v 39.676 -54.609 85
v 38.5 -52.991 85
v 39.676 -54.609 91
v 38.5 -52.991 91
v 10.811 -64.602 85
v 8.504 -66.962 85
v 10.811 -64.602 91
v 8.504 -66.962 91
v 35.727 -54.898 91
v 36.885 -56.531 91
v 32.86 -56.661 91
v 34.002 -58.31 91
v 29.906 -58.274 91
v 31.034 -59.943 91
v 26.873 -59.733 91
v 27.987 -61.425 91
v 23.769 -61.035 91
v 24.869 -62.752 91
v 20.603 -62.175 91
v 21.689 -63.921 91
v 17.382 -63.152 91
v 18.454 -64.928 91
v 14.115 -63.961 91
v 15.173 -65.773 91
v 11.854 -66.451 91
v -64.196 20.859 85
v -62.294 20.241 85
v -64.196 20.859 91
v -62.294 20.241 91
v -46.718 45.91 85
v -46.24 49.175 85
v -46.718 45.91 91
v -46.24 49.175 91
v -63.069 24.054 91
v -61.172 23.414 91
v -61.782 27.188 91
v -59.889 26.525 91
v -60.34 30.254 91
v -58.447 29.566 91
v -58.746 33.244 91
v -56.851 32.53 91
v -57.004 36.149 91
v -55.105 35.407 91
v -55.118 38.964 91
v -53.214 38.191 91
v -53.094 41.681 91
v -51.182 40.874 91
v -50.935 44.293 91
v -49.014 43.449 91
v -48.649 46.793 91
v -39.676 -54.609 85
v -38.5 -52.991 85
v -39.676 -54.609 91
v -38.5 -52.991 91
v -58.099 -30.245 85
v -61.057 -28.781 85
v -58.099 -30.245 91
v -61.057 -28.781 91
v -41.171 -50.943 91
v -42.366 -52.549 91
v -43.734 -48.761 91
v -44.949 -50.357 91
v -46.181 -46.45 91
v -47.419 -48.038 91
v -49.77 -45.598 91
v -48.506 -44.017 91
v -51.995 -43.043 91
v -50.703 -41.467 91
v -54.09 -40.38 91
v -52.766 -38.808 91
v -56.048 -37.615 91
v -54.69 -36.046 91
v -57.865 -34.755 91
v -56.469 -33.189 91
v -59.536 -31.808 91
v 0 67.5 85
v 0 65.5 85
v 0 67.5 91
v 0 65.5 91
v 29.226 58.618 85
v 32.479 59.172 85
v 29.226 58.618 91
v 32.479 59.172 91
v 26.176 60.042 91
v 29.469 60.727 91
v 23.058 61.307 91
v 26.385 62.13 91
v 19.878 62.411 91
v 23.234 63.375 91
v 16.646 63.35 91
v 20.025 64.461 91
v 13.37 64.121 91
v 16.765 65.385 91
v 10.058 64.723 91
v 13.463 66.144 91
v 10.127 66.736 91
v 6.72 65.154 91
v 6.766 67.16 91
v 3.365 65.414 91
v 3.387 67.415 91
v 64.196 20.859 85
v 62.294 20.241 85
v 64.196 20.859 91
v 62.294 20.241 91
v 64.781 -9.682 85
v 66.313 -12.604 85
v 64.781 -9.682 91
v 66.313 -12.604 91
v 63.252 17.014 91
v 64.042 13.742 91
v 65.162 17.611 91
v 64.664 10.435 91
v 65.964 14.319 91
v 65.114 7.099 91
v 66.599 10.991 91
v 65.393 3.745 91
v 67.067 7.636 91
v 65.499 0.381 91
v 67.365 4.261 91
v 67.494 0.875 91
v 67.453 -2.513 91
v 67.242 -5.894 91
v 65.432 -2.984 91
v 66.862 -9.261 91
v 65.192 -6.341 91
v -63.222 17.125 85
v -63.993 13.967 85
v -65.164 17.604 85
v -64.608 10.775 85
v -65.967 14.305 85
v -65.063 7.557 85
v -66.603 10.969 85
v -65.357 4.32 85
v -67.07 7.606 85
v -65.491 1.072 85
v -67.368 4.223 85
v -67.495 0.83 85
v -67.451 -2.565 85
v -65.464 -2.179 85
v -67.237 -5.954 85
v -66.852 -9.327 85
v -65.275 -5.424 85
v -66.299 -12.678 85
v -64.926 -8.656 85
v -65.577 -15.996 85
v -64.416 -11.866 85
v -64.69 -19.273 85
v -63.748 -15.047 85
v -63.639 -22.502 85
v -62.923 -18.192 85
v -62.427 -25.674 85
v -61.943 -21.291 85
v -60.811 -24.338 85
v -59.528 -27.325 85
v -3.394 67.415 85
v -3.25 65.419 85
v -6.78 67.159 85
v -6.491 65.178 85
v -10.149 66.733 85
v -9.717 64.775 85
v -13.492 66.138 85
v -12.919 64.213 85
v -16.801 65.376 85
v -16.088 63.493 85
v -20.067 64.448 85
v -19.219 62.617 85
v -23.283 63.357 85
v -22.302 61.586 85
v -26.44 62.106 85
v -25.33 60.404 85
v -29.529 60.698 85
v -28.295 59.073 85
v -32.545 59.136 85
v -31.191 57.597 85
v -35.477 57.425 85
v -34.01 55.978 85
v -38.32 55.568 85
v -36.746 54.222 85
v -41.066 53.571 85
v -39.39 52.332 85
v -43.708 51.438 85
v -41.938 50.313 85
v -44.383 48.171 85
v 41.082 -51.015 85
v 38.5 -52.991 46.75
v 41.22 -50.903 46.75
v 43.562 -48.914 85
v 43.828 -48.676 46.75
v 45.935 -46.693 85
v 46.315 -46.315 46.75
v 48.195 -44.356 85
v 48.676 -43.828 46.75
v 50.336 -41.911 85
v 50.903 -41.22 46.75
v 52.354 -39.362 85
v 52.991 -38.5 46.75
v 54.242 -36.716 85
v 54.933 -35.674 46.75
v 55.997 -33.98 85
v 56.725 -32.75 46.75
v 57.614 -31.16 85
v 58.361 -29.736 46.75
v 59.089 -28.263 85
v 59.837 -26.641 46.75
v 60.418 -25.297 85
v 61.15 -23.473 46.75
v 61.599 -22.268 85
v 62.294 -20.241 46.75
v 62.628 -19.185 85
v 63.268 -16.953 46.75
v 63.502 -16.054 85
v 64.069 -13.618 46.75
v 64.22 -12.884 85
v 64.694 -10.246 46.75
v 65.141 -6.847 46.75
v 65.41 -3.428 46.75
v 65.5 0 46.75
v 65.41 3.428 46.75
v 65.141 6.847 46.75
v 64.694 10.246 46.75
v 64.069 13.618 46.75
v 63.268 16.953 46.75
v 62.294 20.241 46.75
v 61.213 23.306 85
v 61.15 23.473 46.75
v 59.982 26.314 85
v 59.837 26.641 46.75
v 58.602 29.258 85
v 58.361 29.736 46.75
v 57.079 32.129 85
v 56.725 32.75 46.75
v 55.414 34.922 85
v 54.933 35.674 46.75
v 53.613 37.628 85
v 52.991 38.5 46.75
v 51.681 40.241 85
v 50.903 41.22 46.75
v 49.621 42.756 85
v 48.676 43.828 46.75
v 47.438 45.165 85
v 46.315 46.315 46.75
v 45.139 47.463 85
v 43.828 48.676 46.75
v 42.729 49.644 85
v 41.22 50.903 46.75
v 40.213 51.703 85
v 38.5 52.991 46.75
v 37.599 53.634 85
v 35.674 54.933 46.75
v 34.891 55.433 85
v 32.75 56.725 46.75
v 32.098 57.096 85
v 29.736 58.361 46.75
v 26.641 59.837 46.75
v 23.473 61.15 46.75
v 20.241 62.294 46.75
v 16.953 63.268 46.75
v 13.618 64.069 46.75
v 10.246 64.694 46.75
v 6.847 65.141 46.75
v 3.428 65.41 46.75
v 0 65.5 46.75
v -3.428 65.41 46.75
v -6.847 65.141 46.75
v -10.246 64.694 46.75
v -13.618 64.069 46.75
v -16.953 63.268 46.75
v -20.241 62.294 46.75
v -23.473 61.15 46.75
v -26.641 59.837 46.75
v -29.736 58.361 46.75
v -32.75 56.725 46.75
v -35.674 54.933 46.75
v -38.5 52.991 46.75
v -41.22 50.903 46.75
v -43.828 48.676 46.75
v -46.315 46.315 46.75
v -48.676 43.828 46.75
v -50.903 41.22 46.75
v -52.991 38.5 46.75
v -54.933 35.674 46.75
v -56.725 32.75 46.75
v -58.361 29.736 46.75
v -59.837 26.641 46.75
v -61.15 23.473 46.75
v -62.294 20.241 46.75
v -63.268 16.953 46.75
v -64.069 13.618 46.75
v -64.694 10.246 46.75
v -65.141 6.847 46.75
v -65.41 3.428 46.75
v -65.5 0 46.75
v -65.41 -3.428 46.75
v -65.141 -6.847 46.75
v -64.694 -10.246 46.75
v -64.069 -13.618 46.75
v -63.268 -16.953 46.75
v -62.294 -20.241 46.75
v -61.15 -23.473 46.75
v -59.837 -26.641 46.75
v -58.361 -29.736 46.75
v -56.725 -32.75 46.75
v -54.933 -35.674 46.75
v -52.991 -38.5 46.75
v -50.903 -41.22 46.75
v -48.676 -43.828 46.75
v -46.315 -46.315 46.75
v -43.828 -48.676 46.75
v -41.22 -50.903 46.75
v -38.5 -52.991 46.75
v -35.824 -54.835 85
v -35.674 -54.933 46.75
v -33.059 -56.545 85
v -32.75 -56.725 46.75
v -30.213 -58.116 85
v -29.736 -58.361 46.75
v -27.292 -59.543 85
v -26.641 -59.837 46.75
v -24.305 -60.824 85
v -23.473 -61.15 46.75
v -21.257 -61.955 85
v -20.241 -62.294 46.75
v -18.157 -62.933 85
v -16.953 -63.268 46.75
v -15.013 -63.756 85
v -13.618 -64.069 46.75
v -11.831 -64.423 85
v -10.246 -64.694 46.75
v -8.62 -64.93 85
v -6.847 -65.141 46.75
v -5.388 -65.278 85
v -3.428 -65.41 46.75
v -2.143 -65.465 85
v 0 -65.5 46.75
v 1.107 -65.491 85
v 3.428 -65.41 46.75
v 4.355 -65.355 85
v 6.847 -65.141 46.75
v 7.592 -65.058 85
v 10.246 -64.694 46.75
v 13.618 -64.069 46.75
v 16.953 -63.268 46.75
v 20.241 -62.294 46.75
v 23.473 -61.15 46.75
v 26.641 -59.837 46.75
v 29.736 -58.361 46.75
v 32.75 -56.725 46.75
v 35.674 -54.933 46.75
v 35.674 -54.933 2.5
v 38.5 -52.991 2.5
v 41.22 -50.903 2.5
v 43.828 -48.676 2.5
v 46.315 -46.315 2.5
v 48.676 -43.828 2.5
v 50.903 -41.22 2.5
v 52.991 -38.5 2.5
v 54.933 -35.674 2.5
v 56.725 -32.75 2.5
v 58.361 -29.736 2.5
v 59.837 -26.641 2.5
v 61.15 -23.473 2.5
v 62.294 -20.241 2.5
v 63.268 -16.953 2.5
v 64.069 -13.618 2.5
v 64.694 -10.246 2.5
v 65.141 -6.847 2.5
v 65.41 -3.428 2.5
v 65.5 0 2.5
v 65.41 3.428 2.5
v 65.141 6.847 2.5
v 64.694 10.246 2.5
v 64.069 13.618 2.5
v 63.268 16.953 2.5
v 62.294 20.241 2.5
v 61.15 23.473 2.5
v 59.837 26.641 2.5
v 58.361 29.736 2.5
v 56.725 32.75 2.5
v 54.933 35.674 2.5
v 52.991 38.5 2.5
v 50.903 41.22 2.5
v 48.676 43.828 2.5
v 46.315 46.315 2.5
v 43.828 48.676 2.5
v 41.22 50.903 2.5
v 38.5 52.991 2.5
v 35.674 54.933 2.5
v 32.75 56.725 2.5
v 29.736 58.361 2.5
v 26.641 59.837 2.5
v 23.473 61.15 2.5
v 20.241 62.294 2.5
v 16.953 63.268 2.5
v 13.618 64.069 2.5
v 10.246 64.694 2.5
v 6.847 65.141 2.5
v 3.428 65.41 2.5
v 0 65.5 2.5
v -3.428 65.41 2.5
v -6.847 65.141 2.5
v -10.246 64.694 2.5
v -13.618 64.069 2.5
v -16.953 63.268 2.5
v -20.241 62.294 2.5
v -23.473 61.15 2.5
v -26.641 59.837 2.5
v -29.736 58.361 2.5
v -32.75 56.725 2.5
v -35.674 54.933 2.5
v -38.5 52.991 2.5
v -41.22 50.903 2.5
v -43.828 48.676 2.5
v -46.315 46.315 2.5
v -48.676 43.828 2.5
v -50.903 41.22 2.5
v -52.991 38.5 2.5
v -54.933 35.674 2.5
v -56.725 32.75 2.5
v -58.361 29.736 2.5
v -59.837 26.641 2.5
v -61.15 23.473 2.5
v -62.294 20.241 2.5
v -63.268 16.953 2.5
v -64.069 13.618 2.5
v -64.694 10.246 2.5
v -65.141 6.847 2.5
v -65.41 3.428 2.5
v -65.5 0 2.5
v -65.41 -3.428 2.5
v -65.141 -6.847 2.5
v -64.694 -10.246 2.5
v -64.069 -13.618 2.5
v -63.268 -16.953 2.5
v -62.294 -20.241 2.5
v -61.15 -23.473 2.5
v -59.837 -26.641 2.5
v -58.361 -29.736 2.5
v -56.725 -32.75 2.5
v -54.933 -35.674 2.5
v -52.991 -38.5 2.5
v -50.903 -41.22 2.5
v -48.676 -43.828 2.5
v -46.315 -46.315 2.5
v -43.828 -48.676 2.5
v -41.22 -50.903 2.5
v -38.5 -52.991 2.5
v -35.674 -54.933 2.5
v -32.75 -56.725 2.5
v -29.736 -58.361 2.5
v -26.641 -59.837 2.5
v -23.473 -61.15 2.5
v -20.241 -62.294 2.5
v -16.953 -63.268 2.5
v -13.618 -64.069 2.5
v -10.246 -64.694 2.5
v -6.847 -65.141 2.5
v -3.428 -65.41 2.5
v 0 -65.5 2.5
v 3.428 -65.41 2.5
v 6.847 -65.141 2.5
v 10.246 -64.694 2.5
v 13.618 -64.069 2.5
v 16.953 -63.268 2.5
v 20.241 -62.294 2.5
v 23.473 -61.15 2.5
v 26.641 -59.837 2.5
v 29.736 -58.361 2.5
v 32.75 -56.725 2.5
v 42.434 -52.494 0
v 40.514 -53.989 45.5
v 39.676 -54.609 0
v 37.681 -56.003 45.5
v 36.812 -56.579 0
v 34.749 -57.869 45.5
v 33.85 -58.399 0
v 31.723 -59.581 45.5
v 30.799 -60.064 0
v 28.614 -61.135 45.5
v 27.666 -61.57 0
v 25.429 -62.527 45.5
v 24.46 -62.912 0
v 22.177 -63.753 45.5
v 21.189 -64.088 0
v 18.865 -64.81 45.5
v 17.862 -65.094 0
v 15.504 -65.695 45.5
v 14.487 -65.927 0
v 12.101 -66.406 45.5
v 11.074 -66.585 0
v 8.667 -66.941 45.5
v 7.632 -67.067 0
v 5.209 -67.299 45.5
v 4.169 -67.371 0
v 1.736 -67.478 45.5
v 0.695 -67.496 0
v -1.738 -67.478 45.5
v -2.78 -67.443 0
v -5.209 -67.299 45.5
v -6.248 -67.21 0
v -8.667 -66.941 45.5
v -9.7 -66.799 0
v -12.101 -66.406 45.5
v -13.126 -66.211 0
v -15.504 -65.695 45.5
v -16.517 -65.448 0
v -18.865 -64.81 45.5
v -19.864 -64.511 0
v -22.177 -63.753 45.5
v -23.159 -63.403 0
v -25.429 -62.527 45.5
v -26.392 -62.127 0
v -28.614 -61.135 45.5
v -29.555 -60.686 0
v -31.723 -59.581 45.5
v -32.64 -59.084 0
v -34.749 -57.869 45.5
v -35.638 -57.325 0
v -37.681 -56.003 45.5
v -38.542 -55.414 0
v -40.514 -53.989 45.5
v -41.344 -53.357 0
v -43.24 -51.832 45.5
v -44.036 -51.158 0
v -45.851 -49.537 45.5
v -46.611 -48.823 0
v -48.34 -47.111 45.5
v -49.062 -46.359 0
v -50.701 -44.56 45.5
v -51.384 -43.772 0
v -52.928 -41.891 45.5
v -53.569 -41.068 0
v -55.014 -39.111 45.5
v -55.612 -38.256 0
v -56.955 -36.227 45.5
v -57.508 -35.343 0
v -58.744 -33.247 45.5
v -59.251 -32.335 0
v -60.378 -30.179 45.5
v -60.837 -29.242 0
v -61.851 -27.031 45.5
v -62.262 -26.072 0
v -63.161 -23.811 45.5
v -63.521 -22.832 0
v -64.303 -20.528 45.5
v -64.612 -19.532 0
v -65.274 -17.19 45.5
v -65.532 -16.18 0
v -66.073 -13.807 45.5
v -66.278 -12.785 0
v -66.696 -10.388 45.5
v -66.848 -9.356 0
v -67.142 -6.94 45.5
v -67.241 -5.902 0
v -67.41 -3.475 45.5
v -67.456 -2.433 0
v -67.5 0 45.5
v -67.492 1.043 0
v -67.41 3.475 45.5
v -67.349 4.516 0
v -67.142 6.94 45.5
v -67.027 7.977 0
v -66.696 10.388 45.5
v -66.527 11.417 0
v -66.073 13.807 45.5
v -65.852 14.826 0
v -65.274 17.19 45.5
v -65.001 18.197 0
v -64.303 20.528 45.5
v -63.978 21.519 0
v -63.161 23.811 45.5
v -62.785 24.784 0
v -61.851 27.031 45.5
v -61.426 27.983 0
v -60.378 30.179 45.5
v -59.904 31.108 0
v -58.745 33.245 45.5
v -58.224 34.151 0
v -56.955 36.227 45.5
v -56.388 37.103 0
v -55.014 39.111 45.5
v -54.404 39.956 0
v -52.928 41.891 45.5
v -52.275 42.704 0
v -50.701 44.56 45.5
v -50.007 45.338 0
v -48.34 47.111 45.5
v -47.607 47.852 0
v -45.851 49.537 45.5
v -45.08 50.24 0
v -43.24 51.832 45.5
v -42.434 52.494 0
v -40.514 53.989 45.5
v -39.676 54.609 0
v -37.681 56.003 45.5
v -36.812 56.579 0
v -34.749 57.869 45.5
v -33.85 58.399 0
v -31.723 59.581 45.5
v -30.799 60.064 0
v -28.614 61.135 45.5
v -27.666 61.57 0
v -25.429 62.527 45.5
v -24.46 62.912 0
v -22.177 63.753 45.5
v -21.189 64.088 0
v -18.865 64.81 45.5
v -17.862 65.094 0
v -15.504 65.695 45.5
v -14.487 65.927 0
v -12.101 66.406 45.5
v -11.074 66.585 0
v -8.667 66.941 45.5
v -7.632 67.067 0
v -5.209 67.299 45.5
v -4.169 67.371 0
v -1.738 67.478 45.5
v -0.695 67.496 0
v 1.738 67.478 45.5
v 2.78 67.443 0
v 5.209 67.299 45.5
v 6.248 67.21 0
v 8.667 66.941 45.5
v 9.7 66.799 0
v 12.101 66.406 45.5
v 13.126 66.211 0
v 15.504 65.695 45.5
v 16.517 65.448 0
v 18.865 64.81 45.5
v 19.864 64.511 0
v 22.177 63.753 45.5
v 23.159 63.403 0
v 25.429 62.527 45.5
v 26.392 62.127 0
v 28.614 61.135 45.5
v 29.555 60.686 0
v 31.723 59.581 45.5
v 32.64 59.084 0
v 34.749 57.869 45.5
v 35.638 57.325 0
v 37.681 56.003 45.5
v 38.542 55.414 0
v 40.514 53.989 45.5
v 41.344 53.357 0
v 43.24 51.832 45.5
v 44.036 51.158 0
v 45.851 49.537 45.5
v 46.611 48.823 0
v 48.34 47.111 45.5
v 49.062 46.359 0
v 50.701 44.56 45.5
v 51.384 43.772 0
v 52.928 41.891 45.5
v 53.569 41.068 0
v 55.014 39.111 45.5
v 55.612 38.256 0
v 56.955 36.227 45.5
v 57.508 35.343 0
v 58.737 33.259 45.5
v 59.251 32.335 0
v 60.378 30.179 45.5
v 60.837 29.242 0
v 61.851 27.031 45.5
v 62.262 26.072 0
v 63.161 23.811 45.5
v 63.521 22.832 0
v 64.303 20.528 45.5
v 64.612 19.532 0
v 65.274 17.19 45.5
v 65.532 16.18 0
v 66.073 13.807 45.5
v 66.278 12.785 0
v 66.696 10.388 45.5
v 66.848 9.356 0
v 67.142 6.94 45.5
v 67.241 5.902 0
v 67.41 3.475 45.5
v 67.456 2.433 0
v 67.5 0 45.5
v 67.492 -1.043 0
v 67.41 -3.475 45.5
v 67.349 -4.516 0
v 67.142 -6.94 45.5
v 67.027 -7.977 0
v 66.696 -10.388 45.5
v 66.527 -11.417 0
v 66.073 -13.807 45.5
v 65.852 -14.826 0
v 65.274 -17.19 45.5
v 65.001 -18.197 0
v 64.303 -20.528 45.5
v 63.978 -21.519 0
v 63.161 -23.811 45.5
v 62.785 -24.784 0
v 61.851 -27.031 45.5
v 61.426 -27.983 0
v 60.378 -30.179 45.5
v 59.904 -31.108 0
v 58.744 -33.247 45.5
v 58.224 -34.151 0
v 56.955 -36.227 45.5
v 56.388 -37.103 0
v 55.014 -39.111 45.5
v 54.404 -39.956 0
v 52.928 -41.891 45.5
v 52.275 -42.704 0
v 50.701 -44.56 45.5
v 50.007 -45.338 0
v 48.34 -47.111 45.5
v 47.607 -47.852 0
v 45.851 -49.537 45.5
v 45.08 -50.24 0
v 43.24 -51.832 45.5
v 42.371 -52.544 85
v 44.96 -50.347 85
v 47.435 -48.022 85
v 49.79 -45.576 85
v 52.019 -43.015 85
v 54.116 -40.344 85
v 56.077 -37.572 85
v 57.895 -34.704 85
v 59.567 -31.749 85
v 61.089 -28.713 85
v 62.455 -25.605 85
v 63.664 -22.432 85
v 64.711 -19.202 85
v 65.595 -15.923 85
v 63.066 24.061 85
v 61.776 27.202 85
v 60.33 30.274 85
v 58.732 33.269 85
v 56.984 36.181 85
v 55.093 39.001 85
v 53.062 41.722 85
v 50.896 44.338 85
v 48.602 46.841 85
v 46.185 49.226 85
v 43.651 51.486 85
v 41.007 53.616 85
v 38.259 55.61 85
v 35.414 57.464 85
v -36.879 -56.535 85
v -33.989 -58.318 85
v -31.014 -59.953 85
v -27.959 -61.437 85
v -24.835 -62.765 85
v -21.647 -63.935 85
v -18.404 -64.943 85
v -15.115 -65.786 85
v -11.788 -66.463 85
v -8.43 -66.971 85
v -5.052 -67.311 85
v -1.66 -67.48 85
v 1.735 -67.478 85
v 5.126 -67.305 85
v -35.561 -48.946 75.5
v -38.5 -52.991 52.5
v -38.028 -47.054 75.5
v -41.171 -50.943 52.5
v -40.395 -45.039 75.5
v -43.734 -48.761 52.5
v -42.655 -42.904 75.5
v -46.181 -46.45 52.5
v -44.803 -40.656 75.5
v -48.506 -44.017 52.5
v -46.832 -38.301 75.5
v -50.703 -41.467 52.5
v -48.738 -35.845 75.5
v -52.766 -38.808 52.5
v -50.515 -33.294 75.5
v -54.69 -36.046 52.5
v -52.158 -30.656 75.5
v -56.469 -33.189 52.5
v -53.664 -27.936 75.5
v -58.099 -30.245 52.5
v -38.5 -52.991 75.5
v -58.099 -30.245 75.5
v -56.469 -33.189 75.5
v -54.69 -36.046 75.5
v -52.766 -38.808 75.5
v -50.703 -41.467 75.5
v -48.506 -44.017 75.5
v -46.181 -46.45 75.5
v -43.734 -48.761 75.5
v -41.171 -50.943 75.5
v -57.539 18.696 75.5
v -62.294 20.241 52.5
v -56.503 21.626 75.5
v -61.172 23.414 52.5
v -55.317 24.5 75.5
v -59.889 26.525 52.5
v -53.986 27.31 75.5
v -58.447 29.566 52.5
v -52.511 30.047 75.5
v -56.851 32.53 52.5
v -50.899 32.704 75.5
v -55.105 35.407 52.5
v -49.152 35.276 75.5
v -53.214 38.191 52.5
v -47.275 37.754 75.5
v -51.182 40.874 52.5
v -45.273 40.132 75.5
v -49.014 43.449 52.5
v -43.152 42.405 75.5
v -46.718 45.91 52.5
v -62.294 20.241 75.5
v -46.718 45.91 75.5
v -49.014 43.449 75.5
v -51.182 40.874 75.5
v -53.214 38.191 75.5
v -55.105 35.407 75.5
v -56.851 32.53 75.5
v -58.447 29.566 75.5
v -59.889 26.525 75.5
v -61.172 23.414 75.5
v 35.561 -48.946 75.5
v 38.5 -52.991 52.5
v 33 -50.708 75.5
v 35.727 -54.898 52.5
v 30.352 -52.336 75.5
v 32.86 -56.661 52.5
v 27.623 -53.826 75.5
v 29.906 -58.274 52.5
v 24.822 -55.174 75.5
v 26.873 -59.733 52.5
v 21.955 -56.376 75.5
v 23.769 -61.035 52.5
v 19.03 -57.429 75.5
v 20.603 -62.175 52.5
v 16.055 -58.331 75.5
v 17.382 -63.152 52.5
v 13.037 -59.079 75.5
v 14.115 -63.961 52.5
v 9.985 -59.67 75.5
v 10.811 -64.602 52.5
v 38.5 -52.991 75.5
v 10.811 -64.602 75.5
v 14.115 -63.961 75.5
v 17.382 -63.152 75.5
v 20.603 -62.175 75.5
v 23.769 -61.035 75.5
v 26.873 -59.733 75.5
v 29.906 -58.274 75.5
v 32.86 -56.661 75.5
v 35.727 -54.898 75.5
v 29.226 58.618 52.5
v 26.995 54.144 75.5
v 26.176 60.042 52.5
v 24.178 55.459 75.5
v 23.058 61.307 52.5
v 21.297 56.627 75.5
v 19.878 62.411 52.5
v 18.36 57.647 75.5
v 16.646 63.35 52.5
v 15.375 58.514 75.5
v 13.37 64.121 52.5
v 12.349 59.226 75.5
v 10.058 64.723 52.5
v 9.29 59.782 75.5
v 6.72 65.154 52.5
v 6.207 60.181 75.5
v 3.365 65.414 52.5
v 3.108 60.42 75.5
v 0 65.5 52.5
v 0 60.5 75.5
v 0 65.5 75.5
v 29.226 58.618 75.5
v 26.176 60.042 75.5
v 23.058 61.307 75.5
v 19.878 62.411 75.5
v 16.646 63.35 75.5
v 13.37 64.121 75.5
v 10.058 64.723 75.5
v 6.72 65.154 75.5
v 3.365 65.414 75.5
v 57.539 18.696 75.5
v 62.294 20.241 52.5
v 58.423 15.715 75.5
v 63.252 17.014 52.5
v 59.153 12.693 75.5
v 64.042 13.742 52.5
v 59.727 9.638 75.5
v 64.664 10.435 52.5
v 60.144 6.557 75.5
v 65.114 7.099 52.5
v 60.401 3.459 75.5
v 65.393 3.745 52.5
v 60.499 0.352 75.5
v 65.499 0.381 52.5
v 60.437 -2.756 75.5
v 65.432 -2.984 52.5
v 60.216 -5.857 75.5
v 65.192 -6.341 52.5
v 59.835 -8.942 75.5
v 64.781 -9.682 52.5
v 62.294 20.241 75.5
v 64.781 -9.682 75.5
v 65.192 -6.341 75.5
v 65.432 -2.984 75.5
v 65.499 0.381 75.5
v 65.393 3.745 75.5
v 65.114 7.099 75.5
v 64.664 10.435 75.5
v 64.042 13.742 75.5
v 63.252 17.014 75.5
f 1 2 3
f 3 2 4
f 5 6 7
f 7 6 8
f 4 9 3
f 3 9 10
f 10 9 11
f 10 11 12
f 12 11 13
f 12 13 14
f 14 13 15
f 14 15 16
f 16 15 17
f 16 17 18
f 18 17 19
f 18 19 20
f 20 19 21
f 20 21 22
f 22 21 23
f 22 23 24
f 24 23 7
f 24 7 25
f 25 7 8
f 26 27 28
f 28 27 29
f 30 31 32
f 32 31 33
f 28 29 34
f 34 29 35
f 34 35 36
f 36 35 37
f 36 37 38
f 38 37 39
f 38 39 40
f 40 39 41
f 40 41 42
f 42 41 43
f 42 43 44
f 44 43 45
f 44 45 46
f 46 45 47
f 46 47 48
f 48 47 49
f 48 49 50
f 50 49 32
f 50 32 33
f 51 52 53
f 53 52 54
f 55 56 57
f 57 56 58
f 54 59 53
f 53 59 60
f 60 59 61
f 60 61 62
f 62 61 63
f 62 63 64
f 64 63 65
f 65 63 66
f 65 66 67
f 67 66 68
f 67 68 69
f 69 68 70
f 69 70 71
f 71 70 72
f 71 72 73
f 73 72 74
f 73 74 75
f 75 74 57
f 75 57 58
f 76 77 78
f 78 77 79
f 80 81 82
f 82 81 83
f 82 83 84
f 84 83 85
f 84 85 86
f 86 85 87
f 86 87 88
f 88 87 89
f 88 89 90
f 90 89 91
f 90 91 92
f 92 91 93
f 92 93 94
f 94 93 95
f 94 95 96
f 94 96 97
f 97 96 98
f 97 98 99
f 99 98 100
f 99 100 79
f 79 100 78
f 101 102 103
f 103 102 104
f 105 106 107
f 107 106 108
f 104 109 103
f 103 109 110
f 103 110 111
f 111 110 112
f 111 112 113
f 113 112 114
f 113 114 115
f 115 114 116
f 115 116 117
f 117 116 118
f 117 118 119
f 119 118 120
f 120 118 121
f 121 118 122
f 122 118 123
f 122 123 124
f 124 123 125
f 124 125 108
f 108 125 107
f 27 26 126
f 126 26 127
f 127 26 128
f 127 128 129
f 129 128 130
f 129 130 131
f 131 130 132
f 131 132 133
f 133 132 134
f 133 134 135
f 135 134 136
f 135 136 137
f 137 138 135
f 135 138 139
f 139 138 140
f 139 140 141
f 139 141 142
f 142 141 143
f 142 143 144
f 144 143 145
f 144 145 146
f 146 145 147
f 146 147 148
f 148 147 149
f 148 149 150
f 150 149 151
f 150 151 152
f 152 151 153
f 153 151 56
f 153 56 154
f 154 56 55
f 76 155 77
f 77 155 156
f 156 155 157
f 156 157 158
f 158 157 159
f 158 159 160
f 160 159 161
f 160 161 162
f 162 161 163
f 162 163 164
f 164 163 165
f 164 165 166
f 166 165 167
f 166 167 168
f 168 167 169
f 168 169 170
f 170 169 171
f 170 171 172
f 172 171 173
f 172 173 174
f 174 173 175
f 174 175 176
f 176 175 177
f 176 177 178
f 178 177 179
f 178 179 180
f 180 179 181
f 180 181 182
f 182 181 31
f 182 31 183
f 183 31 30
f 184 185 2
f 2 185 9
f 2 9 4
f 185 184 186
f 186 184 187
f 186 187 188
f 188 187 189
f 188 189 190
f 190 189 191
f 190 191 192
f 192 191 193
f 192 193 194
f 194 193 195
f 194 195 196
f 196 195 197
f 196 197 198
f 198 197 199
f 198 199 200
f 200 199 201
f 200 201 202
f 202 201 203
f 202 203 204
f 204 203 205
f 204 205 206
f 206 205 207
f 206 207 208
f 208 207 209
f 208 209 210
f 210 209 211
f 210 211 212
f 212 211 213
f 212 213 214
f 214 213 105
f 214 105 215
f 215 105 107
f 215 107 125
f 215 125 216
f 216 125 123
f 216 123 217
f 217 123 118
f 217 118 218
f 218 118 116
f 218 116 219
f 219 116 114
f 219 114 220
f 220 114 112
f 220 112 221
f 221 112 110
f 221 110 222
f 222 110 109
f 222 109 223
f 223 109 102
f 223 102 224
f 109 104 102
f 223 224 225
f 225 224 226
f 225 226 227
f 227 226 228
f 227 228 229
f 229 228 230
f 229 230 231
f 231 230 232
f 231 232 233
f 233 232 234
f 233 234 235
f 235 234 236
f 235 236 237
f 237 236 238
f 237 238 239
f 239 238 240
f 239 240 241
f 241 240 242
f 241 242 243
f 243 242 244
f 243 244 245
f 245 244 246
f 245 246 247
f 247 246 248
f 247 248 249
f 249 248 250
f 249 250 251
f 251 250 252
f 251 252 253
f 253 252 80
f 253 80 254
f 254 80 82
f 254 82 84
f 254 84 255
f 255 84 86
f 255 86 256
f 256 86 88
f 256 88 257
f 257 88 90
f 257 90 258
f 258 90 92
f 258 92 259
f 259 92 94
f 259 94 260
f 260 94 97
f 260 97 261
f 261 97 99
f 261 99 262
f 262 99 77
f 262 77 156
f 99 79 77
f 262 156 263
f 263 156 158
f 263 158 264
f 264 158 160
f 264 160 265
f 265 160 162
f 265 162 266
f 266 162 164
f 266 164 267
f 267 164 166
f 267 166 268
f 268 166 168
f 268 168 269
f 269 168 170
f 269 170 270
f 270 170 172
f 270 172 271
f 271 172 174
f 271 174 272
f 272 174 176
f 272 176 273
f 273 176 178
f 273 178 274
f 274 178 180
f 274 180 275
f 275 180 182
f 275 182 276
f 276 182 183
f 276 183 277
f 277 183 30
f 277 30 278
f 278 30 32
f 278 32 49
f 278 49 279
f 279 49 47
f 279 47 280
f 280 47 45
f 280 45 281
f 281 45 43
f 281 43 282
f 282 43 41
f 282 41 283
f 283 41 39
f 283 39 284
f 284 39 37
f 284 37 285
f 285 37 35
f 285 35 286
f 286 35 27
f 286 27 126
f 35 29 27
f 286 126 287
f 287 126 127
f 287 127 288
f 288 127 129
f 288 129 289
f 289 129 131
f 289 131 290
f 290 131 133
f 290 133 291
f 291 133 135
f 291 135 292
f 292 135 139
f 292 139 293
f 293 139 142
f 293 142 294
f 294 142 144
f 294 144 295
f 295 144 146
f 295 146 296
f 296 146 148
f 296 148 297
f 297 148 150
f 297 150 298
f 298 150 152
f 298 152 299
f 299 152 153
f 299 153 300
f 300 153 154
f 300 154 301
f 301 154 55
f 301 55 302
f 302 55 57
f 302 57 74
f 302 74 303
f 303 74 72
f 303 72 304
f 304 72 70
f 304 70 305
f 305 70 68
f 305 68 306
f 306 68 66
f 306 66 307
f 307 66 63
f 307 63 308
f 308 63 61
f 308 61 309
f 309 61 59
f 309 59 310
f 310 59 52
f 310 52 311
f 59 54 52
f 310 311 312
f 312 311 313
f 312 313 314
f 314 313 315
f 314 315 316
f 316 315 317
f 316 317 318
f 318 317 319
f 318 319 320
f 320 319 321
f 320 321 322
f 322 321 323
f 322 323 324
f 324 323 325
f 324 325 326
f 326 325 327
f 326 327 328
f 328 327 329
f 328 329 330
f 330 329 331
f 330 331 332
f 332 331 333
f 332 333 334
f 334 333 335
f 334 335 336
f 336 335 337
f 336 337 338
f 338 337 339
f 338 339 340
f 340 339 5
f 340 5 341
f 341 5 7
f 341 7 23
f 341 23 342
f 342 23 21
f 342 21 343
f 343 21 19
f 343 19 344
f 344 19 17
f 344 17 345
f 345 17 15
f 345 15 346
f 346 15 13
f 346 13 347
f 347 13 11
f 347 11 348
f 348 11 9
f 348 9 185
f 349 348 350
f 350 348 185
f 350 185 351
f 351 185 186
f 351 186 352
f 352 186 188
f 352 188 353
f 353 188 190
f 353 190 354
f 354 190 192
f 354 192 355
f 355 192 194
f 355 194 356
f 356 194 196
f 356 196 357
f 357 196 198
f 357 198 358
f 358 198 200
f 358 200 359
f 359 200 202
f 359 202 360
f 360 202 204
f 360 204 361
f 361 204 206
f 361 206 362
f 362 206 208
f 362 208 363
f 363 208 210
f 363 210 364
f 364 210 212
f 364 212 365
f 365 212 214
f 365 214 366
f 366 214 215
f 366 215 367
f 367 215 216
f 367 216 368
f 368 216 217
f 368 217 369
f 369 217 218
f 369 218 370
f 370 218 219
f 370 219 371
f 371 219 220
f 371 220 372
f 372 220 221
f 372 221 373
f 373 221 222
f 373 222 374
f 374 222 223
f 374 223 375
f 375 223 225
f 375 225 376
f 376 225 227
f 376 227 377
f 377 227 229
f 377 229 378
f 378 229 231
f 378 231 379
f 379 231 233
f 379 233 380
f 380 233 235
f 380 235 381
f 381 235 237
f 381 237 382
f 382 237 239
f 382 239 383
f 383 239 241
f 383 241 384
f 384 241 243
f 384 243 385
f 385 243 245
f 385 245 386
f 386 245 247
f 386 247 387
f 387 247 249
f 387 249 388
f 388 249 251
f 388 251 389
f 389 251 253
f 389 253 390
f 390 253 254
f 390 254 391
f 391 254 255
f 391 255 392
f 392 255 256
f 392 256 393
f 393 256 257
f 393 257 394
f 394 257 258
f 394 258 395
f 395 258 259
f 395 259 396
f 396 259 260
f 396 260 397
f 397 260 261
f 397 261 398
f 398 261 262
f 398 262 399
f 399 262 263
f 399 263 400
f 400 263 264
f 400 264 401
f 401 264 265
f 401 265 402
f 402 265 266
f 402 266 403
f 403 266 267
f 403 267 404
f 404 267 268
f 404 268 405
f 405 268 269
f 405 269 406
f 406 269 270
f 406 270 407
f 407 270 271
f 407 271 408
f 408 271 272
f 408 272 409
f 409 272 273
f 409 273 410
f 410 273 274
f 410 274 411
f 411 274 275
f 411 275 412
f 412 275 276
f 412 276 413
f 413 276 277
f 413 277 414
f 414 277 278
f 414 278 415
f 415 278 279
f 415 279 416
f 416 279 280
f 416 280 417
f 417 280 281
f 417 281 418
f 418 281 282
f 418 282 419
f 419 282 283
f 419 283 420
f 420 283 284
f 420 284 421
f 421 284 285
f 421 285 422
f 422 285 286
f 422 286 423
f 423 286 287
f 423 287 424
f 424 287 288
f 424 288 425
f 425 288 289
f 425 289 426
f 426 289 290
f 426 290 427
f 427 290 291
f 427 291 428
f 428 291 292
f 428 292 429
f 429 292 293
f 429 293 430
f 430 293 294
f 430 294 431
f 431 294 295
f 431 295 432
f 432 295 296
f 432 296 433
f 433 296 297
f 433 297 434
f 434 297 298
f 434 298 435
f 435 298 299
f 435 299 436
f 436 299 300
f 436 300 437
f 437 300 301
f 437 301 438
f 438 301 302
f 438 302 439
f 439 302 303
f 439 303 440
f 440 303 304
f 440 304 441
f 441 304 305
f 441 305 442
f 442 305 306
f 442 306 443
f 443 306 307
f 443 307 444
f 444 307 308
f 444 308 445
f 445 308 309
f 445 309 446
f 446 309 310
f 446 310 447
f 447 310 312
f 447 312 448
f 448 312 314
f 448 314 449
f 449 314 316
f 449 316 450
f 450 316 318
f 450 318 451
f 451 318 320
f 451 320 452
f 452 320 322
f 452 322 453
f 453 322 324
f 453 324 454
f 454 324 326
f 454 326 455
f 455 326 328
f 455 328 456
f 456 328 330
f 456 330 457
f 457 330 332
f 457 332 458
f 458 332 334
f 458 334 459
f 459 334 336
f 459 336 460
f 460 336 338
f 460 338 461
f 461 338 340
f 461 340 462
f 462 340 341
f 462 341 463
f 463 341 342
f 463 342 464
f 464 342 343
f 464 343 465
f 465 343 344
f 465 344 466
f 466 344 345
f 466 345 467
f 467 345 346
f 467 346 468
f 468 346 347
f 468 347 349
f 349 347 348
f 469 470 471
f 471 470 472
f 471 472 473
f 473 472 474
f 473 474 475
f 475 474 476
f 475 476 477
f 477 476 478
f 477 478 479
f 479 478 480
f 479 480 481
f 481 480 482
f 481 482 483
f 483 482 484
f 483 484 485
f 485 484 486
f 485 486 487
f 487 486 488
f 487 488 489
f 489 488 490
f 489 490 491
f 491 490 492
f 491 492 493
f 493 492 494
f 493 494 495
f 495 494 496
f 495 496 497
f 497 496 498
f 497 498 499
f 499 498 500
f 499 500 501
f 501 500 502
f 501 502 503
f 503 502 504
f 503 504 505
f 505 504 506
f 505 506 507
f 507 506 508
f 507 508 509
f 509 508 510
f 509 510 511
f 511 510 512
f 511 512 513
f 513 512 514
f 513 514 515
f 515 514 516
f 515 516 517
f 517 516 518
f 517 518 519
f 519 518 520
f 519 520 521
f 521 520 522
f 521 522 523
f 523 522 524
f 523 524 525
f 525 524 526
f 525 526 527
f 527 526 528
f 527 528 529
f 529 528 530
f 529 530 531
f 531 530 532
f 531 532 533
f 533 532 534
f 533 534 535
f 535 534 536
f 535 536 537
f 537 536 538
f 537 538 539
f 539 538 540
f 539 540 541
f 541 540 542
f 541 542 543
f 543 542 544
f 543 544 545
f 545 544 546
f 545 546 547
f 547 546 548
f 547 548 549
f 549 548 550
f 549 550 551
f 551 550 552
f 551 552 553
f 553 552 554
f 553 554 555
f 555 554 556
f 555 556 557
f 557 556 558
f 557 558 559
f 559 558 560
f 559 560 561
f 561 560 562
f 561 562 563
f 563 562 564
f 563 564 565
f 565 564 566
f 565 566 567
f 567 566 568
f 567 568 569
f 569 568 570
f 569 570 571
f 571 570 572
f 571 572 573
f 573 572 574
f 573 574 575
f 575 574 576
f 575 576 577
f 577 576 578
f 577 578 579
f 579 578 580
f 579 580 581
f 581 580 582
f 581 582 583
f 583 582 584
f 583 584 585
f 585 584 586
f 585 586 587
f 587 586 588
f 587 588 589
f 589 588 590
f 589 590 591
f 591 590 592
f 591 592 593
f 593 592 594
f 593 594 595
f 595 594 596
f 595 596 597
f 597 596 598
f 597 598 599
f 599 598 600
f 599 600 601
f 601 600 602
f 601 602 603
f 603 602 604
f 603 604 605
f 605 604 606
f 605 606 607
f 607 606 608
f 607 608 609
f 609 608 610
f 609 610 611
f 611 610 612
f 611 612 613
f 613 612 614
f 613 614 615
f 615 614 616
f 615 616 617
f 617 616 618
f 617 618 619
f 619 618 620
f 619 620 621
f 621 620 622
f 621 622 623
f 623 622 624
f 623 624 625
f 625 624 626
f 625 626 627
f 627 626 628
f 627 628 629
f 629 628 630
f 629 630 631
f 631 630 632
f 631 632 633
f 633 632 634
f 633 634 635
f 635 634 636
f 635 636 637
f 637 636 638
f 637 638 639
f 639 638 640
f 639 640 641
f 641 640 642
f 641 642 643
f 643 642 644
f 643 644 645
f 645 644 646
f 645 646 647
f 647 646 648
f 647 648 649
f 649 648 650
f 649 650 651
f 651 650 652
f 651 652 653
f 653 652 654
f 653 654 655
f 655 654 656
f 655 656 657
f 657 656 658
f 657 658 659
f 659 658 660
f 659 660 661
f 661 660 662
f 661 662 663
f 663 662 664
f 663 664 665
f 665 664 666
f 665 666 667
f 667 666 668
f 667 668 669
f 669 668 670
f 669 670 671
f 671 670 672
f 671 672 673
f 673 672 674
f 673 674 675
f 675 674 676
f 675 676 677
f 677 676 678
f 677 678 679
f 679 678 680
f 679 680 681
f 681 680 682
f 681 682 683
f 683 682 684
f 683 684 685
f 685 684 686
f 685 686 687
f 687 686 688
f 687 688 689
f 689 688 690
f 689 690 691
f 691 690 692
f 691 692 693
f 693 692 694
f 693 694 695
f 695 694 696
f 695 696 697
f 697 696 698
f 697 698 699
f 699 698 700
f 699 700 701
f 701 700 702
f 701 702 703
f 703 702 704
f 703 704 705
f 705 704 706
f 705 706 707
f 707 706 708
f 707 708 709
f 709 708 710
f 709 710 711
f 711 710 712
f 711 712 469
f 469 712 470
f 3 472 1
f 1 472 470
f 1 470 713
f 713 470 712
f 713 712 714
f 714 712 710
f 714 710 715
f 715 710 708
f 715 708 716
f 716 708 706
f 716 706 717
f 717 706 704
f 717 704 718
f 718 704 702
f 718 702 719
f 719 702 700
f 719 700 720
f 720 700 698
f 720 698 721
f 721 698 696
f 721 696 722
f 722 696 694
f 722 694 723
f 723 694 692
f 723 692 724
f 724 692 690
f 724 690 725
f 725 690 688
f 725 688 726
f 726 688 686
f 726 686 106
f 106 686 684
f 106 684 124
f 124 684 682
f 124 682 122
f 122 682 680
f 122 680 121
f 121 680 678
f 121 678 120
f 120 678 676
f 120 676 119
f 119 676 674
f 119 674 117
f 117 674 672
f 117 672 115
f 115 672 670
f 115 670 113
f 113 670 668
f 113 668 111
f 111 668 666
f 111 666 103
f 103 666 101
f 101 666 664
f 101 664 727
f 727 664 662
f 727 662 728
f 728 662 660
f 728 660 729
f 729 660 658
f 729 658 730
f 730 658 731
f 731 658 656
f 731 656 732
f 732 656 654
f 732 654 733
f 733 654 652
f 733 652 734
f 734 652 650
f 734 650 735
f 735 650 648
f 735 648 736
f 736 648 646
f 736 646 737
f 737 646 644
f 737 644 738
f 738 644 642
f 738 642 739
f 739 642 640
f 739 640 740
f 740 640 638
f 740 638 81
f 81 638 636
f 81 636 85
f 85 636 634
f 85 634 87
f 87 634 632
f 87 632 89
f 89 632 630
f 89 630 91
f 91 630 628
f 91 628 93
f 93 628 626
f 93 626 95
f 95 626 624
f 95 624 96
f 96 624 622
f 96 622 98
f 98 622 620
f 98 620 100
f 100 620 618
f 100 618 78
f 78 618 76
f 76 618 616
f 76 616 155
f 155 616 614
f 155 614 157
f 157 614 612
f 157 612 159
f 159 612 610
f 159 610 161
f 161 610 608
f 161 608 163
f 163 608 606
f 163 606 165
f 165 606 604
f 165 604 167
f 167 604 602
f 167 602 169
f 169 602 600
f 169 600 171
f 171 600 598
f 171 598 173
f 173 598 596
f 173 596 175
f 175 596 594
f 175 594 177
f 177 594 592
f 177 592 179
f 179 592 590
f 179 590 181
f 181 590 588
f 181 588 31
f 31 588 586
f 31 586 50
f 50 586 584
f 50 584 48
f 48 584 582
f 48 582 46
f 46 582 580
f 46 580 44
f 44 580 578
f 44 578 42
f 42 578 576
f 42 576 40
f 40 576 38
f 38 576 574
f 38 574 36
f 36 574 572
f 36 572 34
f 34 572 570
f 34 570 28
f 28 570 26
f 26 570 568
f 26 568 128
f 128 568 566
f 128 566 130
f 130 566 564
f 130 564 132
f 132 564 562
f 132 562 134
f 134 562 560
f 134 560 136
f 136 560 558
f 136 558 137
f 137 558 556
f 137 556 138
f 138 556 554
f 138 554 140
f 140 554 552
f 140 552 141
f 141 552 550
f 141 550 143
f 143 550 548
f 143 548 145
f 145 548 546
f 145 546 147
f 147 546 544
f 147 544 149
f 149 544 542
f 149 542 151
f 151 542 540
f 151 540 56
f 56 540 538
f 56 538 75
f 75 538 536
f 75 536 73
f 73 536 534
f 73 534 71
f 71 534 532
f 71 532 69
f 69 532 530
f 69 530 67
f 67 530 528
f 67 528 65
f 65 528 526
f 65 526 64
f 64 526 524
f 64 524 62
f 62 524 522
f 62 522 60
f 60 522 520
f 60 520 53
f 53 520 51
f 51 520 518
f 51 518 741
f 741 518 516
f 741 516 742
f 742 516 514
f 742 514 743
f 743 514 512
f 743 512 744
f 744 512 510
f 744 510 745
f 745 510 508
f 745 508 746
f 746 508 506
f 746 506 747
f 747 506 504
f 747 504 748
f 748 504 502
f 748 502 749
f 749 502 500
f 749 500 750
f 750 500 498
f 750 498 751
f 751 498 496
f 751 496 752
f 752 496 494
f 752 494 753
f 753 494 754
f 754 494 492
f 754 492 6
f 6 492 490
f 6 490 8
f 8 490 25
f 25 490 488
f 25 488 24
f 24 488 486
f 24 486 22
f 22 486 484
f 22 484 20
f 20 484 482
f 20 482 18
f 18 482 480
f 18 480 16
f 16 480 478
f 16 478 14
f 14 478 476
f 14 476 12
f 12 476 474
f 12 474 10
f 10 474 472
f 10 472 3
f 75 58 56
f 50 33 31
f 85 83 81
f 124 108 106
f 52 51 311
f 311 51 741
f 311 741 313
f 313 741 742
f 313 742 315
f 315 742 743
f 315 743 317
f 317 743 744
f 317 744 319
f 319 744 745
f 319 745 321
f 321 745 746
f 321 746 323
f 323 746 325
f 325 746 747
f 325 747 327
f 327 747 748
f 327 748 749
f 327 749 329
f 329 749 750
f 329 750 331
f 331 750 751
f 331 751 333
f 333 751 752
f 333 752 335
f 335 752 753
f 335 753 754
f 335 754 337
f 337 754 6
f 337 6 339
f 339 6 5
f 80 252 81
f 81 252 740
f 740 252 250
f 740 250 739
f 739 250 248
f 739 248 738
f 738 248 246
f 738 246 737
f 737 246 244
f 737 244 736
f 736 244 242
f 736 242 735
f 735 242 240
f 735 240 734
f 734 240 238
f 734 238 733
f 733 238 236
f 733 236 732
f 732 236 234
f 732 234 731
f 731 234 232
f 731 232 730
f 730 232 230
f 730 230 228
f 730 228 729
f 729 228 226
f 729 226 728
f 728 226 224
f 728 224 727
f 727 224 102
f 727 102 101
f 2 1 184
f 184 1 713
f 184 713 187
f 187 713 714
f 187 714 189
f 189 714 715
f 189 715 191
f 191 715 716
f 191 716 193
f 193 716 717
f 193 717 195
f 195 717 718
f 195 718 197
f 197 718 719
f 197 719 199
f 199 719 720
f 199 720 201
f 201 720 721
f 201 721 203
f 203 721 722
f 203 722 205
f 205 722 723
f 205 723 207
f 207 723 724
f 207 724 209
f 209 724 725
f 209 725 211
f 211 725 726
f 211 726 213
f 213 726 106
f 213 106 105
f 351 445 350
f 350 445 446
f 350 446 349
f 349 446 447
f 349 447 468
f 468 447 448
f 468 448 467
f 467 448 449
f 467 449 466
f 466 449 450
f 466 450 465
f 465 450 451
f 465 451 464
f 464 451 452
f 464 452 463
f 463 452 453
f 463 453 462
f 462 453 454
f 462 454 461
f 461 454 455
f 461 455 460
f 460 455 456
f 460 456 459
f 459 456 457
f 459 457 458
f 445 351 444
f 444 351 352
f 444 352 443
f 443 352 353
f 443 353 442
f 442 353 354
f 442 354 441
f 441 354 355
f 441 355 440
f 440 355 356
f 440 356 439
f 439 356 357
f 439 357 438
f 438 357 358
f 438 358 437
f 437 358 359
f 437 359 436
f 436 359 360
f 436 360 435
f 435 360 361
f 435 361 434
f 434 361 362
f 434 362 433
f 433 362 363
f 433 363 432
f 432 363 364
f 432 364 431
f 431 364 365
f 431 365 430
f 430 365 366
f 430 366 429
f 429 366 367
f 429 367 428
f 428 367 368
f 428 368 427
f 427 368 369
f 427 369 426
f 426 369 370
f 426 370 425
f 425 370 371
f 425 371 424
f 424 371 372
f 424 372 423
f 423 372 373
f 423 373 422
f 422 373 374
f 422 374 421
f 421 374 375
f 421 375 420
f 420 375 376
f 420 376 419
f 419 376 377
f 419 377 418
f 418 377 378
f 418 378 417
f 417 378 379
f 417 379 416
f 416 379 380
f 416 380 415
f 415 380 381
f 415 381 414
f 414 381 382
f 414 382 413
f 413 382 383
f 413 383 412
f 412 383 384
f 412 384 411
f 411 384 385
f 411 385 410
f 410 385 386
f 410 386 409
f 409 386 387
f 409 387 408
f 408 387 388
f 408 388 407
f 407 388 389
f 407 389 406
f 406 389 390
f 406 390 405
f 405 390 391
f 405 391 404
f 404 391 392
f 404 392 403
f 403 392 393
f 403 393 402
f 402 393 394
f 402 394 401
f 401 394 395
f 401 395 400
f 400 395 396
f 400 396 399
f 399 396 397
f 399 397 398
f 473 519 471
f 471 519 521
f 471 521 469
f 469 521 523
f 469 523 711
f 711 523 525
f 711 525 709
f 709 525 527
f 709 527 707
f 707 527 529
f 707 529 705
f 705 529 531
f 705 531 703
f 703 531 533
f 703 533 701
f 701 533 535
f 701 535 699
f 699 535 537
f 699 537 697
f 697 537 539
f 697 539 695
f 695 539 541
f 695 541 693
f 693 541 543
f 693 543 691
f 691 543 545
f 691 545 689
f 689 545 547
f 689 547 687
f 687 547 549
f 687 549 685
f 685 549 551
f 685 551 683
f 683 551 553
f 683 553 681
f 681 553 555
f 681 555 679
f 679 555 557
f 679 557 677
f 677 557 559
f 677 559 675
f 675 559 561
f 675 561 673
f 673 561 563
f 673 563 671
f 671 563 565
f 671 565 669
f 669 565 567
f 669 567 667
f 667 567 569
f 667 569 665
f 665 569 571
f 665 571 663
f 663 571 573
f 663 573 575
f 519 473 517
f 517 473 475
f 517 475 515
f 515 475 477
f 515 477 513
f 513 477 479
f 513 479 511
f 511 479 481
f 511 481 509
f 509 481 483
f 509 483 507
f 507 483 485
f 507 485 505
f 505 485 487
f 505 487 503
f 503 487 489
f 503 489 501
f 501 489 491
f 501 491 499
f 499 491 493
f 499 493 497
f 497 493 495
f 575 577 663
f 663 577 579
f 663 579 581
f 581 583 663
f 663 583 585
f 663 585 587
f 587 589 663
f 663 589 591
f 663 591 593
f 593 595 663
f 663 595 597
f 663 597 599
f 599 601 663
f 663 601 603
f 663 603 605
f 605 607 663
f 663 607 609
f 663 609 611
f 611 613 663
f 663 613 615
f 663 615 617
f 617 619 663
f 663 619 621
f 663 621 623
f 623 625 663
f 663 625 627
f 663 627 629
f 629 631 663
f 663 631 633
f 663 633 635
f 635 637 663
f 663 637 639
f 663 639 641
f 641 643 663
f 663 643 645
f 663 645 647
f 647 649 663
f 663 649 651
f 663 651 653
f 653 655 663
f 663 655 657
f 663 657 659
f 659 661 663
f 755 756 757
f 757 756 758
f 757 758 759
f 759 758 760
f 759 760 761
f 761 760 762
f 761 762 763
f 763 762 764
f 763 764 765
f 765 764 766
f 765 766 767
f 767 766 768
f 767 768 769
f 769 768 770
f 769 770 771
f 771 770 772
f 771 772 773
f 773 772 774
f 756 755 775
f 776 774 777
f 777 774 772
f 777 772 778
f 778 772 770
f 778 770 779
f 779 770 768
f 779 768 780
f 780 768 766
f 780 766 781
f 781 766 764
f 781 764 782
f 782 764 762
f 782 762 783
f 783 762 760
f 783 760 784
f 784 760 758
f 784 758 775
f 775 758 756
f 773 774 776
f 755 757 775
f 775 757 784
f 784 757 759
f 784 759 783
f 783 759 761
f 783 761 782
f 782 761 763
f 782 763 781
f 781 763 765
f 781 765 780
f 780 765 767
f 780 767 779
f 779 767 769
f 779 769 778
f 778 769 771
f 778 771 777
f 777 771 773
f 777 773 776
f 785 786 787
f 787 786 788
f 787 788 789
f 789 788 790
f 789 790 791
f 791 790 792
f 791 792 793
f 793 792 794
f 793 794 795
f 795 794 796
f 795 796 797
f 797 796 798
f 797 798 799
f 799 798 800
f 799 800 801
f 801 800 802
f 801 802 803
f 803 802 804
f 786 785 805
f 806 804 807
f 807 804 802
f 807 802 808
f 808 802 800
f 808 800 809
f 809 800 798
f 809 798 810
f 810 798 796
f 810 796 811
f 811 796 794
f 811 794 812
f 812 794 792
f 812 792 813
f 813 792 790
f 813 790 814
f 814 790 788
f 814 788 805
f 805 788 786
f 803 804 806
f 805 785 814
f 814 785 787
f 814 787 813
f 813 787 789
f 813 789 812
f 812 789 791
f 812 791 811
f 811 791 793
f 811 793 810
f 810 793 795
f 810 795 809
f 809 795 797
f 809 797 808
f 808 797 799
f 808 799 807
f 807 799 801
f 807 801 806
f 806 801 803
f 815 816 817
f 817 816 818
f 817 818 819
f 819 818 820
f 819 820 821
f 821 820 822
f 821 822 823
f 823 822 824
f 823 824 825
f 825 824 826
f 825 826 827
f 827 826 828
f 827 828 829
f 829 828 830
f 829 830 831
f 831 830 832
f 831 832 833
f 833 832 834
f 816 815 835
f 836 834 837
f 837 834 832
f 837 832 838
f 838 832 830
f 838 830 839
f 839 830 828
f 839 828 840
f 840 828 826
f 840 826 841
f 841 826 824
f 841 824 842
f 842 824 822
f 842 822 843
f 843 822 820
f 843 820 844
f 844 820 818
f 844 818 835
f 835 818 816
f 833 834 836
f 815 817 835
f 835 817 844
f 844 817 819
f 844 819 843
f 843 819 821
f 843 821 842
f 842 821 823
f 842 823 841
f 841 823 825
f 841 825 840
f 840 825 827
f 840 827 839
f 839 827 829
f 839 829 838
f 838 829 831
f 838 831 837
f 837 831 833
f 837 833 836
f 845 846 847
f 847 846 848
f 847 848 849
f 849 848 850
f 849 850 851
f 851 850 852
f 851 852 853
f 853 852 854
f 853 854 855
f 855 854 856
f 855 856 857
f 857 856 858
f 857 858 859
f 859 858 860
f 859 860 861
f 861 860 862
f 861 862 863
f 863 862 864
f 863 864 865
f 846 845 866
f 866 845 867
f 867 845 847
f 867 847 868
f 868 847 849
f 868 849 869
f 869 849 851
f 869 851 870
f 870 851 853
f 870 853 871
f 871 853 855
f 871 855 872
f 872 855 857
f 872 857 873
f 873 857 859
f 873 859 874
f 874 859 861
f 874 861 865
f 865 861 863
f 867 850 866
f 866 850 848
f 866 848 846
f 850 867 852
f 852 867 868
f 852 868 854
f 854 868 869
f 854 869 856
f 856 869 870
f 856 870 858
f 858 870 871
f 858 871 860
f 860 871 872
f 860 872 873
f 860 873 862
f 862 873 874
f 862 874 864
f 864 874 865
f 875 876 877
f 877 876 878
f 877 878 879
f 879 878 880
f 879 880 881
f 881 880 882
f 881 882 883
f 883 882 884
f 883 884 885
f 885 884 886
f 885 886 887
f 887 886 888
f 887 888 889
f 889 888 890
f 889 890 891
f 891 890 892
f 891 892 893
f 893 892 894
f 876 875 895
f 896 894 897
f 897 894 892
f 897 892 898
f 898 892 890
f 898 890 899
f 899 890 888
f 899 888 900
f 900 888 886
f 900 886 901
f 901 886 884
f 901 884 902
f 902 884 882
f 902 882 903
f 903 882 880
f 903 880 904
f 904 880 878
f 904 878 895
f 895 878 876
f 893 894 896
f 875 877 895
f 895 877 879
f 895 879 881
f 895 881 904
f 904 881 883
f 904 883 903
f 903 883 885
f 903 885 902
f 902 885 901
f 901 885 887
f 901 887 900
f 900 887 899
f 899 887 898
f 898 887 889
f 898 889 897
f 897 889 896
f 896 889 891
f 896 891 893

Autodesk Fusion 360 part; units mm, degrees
sketch "Sketch1" plane through (0, 0, 0) normal (0, 0, 1) x (1, 0, 0)
  circle A0 centre (0, 0) radius 65.5
  circle A1 centre (0, 0) radius 67.5
  line L0 (0, 0) -> (0, 65.5)
  line L1 (0, 0) -> (29.226, 58.6182)
  line L2 (29.226, 58.6182) -> (32.4791, 59.1723)
  line L3 (0, 65.5) -> (0, 67.5)
  line L4 (-62.2942, 20.2406) -> (-64.1963, 20.8586)
  line L5 (-46.7179, 45.9096) -> (-46.2396, 49.1747)
  line L6 (-38.4999, -52.9906) -> (-39.6755, -54.6086)
  line L7 (-58.0992, -30.2445) -> (-61.0567, -28.7806)
  line L8 (38.4999, -52.9906) -> (39.6755, -54.6086)
  line L9 (10.8106, -64.6017) -> (8.5044, -66.9621)
  line L10 (62.2942, 20.2406) -> (64.1963, 20.8586)
  line L11 (64.7805, -9.6815) -> (66.3128, -12.6042)
  line L12 (0, 60.5) -> (0, 65.5)
  line L13 (26.995, 54.1435) -> (29.226, 58.6182)
  arc A2 (26.995, 54.1435) -> (0, 60.5) centre (0, 0) ccw
  line L14 (-57.5389, 18.6955) -> (-62.2942, 20.2406)
  arc A3 (-43.1517, 42.405) -> (-57.5389, 18.6955) centre (0, 0) ccw
  line L15 (-43.1517, 42.405) -> (-46.7179, 45.9096)
  line L16 (-35.561, -48.9455) -> (-38.4999, -52.9906)
  arc A4 (-53.6642, -27.9358) -> (-35.561, -48.9455) centre (0, 0) ccw
  line L17 (-53.6642, -27.9358) -> (-58.0992, -30.2445)
  line L18 (35.561, -48.9455) -> (38.4999, -52.9906)
  arc A5 (9.9854, -59.6703) -> (35.561, -48.9455) centre (0, 0) ccw
  line L19 (9.9854, -59.6703) -> (10.8106, -64.6017)
  line L20 (57.5389, 18.6955) -> (62.2942, 20.2406)
  arc A6 (59.8355, -8.9425) -> (57.5389, 18.6955) centre (0, 0) ccw
  line L21 (59.8355, -8.9425) -> (64.7805, -9.6815)
  dimension "d1" = 131
  dimension "d2" = 135
  dimension "d3" = 26.5
  dimension "d4" = 3.3
  dimension "d8" = 360
  dimension "d13" = 121
  dimension "d15" = 360
extrude "Extrude1" add sketch "Sketch1" along normal blind 2.5 contours A0 L20 A6 L21 | A0 L0 L1 L12 L13 L14 A3 L15 L16 A4 L17 L18 A5 L19 L20 A6 L21 | A0 L0 L1 L12 L13 A2 | A0 L18 A5 L19 | L0 L1 A2 | A0 L14 A3 L15 | A0 L16 A4 L17 makes body 1
extrude "Extrude2" add sketch "Sketch1" along normal blind 85 contours A0 A1 L2 L10 | A0 A1 L8 L11 | A0 A1 L3 L5 | A0 A1 L6 L9 | A0 A1 L4 L7 bodies 1
extrude "Extrude3" add sketch "Sketch1" along normal blind 91 contours A0 A1 L10 L11 | A0 A1 L2 L3 | A0 A1 L8 L9 | A0 A1 L4 L5 | A0 A1 L6 L7 bodies 1
extrude "Extrude4" add sketch "Sketch1" along normal blind 23 from surface at 52.5 separate body contours A0 L20 A6 L21 | A0 L0 L1 L12 L13 A2 | A0 L18 A5 L19 | A0 L14 A3 L15 | A0 L16 A4 L17 makes body 2 at (-40.5132, -51.4677, 67.8333) makes body 3 at (-48.4522, 44.0753, 67.8333) makes body 4 at (22.9832, -61.3353, 67.8333) makes body 5 at (2.5239, 65.4514, 67.8333) makes body 6 at (65.3337, -4.6641, 67.8333)
sketch "Sketch2" plane through (0, 0, 0) normal (-0.1478, -0.989, 0) x (0.989, -0.1478, 0)
  line L0 (60.5, 52.5) -> (65.5, 52.5)
  line L1 (65.5, 52.5) -> (65.5, 75.5)
  line L2 (65.5, 75.5) -> (60.5, 75.5)
  line L3 (60.5, 75.5) -> (60.5, 52.5)
  line L4 (60.5, 75.5) -> (65.5, 52.5)
revolve "Revolve1" cut sketch "Sketch2" angle 360 about axis through (0, 0, 1.75) along (0, 0, 1) contours L0 L3 L4 bodies 2 3 4 5 6
equation "d1 = ( 65.5 * 2 ) * 1 mm"
equation "d2 = ( 67.5 * 2 ) * 1 mm"
